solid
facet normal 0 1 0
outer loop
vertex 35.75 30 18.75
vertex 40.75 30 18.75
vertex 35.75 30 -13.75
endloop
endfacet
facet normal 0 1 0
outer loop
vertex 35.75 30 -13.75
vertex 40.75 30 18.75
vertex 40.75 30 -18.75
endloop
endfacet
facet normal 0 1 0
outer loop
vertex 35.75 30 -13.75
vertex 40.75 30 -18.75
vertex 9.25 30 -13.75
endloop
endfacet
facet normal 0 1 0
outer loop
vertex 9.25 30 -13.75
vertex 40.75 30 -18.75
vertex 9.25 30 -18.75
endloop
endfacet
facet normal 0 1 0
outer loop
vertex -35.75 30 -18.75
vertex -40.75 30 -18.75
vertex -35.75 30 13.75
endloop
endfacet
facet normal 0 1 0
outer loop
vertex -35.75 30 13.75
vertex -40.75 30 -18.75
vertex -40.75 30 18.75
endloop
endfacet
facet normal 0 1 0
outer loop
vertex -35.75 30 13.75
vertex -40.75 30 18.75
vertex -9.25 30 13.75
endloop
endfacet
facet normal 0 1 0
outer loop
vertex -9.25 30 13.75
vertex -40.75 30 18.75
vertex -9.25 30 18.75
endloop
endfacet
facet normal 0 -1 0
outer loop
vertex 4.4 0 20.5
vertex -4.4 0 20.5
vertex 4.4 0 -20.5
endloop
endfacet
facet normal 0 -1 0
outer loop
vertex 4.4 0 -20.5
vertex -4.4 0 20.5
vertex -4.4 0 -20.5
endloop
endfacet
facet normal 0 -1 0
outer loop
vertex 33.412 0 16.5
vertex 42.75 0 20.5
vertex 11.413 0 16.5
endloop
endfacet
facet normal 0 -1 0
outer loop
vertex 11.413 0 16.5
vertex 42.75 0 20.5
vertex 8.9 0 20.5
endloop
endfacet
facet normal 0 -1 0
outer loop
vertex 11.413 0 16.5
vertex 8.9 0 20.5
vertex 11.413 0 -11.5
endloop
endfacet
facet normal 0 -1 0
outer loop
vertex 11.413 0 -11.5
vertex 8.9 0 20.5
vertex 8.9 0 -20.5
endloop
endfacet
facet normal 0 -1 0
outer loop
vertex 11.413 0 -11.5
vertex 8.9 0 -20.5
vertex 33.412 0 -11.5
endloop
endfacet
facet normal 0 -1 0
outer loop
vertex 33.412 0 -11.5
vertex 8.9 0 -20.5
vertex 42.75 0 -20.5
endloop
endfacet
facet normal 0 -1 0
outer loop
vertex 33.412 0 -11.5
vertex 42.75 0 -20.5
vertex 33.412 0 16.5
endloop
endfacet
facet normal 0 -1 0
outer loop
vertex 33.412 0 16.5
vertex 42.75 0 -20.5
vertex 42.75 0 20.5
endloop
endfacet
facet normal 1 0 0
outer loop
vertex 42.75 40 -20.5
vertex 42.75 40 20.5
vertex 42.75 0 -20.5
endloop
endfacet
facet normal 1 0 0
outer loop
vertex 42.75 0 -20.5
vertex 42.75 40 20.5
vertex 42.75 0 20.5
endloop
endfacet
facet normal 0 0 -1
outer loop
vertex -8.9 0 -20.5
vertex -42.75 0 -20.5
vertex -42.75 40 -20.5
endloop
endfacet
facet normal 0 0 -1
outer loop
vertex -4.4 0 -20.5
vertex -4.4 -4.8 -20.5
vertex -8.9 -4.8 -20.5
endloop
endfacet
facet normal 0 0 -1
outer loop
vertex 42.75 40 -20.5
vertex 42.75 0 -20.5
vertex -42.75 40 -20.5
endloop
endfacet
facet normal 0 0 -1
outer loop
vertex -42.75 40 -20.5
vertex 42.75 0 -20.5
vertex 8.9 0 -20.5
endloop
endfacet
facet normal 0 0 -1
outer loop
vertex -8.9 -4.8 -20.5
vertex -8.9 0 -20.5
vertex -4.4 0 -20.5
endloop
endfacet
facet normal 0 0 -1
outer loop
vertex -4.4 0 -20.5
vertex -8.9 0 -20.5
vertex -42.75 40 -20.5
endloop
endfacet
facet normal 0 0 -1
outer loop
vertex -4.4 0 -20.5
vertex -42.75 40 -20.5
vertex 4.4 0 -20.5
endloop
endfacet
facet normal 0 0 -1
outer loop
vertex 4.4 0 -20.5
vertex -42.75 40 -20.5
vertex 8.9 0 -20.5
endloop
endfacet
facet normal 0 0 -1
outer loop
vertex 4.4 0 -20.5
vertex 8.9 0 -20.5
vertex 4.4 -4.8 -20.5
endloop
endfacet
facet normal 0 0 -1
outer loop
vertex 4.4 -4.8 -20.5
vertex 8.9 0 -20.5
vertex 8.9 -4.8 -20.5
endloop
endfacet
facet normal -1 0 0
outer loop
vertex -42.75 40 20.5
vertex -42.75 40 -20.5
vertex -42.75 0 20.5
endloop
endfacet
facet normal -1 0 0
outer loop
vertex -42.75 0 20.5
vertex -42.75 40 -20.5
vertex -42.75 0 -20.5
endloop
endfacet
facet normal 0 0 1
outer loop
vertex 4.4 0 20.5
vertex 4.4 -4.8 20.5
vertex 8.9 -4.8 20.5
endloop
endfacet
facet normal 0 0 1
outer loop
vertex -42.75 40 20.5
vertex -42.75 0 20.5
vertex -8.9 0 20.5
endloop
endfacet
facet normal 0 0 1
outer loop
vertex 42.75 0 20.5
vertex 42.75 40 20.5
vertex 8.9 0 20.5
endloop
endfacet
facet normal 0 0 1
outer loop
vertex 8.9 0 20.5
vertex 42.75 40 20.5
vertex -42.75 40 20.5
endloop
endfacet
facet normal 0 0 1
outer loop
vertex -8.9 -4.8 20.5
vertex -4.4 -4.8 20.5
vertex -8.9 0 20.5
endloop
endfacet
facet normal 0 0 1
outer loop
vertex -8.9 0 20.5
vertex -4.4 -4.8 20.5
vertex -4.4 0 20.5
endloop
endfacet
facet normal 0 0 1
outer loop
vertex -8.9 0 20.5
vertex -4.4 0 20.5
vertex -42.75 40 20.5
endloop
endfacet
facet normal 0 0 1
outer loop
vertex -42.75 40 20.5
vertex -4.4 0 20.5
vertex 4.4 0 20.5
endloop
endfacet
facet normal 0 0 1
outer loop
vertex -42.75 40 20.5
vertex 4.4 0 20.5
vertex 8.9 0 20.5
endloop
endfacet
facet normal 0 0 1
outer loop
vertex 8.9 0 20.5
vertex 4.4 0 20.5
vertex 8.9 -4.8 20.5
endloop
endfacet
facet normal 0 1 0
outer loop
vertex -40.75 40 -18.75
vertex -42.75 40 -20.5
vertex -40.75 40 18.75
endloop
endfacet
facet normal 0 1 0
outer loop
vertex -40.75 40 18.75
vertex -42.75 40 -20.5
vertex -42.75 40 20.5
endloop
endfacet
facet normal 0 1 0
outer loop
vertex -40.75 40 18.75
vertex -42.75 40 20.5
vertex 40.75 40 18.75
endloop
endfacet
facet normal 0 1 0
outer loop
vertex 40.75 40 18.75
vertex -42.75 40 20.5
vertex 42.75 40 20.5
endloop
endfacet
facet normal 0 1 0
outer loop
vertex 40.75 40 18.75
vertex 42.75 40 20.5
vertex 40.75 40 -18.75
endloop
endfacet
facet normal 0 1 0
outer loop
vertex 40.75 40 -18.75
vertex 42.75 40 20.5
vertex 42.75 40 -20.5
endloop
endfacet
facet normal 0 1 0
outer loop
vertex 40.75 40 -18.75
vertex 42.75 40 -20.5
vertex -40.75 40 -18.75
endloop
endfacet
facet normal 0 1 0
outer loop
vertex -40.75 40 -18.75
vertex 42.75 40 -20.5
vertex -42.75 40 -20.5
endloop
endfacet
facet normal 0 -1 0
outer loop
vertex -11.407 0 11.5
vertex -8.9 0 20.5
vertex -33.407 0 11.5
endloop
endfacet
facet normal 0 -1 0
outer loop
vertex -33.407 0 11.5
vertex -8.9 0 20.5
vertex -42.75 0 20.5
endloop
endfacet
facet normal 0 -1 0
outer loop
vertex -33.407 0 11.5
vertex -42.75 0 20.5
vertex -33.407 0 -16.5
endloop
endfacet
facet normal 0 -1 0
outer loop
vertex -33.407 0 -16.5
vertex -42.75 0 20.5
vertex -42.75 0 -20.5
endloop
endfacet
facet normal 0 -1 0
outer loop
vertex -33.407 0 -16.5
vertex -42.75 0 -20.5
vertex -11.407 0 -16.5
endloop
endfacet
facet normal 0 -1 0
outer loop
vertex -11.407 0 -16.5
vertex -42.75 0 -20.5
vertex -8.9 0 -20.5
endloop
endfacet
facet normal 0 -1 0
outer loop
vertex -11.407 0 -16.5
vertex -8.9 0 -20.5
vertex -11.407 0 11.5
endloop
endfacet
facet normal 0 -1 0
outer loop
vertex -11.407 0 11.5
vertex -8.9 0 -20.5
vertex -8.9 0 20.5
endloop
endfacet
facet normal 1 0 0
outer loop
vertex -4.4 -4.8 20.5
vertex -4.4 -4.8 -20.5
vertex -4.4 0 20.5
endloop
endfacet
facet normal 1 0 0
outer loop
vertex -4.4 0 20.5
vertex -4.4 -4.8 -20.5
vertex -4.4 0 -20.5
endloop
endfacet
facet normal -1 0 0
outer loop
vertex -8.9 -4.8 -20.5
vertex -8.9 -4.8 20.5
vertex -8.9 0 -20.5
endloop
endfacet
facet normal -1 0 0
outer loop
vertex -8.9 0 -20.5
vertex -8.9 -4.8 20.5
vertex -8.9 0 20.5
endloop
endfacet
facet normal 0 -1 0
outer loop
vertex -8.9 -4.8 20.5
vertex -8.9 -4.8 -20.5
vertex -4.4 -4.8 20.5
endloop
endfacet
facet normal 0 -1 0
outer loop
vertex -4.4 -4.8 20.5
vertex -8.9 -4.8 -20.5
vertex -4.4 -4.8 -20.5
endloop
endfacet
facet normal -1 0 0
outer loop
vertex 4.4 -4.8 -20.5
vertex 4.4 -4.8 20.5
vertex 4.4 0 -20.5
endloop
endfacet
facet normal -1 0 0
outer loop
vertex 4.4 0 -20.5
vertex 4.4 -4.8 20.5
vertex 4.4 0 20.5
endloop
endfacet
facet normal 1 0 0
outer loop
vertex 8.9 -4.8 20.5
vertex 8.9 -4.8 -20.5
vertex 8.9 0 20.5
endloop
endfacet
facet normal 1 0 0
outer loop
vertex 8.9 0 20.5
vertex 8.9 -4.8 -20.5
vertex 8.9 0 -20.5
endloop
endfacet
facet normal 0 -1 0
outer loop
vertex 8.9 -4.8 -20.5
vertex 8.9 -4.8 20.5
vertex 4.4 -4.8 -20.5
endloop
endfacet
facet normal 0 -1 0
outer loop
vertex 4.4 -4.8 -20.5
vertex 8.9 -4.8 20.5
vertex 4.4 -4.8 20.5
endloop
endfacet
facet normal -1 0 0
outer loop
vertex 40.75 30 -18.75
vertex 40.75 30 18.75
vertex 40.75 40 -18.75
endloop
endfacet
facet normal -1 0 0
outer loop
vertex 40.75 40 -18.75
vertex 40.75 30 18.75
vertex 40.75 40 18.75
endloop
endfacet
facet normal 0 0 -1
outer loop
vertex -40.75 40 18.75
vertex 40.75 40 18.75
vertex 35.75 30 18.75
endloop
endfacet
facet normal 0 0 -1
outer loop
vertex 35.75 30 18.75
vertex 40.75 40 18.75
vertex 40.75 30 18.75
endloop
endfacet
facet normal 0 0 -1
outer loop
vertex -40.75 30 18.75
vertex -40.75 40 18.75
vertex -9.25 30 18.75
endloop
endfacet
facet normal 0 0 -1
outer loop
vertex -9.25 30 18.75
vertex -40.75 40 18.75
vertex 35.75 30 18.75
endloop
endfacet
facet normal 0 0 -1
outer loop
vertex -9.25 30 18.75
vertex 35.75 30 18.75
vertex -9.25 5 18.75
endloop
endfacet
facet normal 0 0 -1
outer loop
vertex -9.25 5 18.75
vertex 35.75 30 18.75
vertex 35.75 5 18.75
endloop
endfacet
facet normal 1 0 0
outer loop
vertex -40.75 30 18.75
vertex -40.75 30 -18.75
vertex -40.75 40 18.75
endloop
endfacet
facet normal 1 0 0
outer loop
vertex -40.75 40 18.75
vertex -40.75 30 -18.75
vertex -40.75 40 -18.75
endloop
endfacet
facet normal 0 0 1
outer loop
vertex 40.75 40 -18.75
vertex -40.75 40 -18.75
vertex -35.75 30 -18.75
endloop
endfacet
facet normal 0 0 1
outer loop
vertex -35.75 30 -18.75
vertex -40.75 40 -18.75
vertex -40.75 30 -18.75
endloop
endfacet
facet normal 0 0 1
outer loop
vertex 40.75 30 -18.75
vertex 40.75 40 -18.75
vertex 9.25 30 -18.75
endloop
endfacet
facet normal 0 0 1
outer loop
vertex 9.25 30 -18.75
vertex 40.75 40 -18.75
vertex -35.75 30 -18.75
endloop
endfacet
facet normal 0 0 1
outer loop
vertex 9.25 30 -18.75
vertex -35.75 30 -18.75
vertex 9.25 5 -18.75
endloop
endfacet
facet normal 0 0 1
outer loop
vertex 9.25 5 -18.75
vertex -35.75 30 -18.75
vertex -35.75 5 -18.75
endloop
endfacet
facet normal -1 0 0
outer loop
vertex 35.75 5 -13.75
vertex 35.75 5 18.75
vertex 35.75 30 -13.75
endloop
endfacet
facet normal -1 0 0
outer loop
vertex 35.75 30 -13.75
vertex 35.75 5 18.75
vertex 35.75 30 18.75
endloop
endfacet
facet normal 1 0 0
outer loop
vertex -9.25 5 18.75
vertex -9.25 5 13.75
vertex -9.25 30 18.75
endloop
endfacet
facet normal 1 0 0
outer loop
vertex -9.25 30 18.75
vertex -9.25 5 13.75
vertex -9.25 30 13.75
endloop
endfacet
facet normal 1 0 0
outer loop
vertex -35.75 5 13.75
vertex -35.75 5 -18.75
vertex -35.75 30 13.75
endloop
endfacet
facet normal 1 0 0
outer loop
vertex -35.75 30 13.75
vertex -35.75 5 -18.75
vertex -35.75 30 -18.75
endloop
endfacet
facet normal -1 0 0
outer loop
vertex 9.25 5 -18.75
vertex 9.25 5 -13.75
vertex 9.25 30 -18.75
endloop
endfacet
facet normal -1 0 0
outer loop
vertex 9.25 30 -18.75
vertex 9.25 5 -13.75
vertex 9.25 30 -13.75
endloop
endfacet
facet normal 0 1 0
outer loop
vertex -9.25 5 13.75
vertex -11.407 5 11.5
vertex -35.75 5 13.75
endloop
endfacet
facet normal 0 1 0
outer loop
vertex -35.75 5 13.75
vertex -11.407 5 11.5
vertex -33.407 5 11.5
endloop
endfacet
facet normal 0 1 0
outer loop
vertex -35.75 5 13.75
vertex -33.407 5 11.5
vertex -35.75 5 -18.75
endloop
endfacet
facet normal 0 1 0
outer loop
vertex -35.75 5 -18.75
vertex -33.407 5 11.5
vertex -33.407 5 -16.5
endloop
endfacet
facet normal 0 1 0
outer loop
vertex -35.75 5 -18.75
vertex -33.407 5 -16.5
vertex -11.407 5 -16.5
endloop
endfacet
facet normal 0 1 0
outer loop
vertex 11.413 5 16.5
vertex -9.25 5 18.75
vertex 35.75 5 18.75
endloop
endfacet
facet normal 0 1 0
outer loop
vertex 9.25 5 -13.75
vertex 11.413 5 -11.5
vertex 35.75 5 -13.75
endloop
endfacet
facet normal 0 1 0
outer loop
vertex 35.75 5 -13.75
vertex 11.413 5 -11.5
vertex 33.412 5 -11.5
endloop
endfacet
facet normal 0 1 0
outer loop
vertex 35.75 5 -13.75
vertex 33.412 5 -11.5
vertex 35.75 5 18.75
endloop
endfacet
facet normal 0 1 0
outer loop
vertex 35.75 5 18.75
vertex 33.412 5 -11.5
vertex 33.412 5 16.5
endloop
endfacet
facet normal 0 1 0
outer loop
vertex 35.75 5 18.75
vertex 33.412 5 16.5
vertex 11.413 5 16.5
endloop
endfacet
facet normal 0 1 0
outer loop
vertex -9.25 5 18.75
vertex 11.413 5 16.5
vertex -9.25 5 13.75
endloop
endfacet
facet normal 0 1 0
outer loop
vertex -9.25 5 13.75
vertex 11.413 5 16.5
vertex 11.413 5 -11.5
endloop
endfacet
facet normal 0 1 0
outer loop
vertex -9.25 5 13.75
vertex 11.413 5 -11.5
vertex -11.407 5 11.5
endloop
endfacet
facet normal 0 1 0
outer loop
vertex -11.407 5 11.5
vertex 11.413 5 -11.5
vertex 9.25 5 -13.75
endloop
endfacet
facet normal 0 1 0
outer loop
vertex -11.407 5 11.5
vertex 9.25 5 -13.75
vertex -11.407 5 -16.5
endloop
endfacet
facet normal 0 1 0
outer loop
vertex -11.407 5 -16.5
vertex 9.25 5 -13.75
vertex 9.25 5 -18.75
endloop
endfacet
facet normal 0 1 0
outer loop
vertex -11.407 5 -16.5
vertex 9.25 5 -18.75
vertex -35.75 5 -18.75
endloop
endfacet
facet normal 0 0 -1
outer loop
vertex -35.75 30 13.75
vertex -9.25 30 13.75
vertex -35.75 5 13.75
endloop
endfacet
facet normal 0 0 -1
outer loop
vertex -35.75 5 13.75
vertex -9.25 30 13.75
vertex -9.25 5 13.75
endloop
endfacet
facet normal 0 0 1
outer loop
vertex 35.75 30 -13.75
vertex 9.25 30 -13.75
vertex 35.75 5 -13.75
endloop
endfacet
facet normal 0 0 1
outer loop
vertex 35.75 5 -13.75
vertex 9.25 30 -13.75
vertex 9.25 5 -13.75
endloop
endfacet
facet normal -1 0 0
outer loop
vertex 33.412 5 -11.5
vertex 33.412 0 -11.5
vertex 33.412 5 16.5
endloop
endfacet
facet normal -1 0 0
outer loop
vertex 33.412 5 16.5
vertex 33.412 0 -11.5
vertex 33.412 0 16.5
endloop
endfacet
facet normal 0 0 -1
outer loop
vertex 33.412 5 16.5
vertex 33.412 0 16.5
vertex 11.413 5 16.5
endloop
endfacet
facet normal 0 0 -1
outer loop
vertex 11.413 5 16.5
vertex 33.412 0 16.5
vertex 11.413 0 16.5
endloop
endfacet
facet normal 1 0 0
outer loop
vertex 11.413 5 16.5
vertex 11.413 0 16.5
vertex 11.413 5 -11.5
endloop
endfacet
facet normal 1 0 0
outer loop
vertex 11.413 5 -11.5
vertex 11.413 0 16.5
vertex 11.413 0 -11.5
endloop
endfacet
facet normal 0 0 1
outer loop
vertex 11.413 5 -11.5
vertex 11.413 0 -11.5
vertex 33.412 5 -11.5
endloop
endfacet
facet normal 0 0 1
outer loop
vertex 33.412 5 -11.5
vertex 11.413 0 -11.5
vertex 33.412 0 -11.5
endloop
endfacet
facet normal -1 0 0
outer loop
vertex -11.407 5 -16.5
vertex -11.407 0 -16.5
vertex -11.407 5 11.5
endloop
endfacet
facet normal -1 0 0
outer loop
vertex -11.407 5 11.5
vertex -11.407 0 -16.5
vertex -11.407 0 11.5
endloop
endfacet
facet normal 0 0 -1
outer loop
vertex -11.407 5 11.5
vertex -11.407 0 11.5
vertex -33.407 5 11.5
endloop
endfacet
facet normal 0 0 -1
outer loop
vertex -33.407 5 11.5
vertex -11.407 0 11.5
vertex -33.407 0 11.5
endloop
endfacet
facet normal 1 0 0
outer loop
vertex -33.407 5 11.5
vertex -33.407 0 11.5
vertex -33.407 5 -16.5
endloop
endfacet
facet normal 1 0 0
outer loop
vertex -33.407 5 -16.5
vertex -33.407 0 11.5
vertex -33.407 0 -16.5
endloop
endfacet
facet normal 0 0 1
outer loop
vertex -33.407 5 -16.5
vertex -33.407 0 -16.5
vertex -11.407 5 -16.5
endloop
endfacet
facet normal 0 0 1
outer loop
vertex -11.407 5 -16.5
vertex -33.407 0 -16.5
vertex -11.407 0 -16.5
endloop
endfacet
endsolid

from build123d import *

# Parameters (mm, degrees)
SKETCH1_W           = 85.5
SKETCH1_H           = 41
BOSS_EXTRUDE1_DEPTH = 40
SKETCH2_W           = 4.5
SKETCH2_H           = 41
BOSS_EXTRUDE2_DEPTH = 4.8
SKETCH5_W           = 81.5
SKETCH5_H           = 37.5
CUT_EXTRUDE1_DEPTH  = 10
SKETCH6_W           = 45
SKETCH6_H           = 5
CUT_EXTRUDE2_DEPTH  = 25
SKETCH7_W           = 71.5
SKETCH7_H           = 27.5
CUT_EXTRUDE3_DEPTH  = 25
CUT_EXTRUDE4_REACH  = 60.931
SKETCH10_W          = 22
SKETCH10_H          = 28


with BuildPart() as part:
    # Sketch1 → Boss-Extrude1 (new body)
    with BuildSketch(Plane(origin=(0, 0, 0), x_dir=(1, 0, 0), z_dir=(0, 1, 0))):
        Rectangle(SKETCH1_W, SKETCH1_H)
    extrude(amount=BOSS_EXTRUDE1_DEPTH)

    # Sketch2 → Boss-Extrude2 (add)
    with BuildSketch(Plane.XZ):
        with Locations((-6.65, 0)):
            Rectangle(SKETCH2_W, SKETCH2_H)
        with Locations((6.65, 0)):
            Rectangle(SKETCH2_W, SKETCH2_H)
    extrude(amount=BOSS_EXTRUDE2_DEPTH)

    # Sketch5 → Cut-Extrude1 (cut)
    with BuildSketch(Plane(origin=(0, 40, 0), x_dir=(1, 0, 0), z_dir=(0, 1, 0))):
        Rectangle(SKETCH5_W, SKETCH5_H)
    extrude(amount=-CUT_EXTRUDE1_DEPTH, mode=Mode.SUBTRACT)

    # Sketch6 → Cut-Extrude2 (cut)
    with BuildSketch(Plane(origin=(0, 30, 0), x_dir=(1, 0, 0), z_dir=(0, 1, 0))):
        with Locations((-13.25, 16.25)):
            Rectangle(SKETCH6_W, SKETCH6_H)
        with Locations((13.25, -16.25)):
            Rectangle(SKETCH6_W, SKETCH6_H)
    extrude(amount=-CUT_EXTRUDE2_DEPTH, mode=Mode.SUBTRACT)

    # Sketch7 → Cut-Extrude3 (cut)
    with BuildSketch(Plane(origin=(0, 30, 0), x_dir=(1, 0, 0), z_dir=(0, 1, 0))):
        Rectangle(SKETCH7_W, SKETCH7_H)
    extrude(amount=-CUT_EXTRUDE3_DEPTH, mode=Mode.SUBTRACT)

    # Sketch10 → Cut-Extrude4 (cut, up to next)
    with BuildSketch(Plane(origin=(0, 5, 0), x_dir=(1, 0, 0), z_dir=(0, 1, 0)), mode=Mode.PRIVATE) as cut_extrude4_sk1:
        with Locations((-22.406521178, 2.5)):
            Rectangle(SKETCH10_W, SKETCH10_H)
    cut_extrude4_tool1 = extrude(cut_extrude4_sk1.sketch, amount=-CUT_EXTRUDE4_REACH, mode=Mode.PRIVATE) & part.part
    # Sketch10 → Cut-Extrude4 (cut, up to next)
    with BuildSketch(Plane(origin=(0, 5, 0), x_dir=(1, 0, 0), z_dir=(0, 1, 0)), mode=Mode.PRIVATE) as cut_extrude4_sk2:
        with Locations((22.4125, -2.5)):
            Rectangle(SKETCH10_W, SKETCH10_H)
    cut_extrude4_tool2 = extrude(cut_extrude4_sk2.sketch, amount=-CUT_EXTRUDE4_REACH, mode=Mode.PRIVATE) & part.part
    add(cut_extrude4_tool1.solids().sort_by_distance((-22.406521, 5, -2.5))[0], mode=Mode.SUBTRACT)
    add(cut_extrude4_tool2.solids().sort_by_distance((22.4125, 5, 2.5))[0], mode=Mode.SUBTRACT)


solid = part.part
